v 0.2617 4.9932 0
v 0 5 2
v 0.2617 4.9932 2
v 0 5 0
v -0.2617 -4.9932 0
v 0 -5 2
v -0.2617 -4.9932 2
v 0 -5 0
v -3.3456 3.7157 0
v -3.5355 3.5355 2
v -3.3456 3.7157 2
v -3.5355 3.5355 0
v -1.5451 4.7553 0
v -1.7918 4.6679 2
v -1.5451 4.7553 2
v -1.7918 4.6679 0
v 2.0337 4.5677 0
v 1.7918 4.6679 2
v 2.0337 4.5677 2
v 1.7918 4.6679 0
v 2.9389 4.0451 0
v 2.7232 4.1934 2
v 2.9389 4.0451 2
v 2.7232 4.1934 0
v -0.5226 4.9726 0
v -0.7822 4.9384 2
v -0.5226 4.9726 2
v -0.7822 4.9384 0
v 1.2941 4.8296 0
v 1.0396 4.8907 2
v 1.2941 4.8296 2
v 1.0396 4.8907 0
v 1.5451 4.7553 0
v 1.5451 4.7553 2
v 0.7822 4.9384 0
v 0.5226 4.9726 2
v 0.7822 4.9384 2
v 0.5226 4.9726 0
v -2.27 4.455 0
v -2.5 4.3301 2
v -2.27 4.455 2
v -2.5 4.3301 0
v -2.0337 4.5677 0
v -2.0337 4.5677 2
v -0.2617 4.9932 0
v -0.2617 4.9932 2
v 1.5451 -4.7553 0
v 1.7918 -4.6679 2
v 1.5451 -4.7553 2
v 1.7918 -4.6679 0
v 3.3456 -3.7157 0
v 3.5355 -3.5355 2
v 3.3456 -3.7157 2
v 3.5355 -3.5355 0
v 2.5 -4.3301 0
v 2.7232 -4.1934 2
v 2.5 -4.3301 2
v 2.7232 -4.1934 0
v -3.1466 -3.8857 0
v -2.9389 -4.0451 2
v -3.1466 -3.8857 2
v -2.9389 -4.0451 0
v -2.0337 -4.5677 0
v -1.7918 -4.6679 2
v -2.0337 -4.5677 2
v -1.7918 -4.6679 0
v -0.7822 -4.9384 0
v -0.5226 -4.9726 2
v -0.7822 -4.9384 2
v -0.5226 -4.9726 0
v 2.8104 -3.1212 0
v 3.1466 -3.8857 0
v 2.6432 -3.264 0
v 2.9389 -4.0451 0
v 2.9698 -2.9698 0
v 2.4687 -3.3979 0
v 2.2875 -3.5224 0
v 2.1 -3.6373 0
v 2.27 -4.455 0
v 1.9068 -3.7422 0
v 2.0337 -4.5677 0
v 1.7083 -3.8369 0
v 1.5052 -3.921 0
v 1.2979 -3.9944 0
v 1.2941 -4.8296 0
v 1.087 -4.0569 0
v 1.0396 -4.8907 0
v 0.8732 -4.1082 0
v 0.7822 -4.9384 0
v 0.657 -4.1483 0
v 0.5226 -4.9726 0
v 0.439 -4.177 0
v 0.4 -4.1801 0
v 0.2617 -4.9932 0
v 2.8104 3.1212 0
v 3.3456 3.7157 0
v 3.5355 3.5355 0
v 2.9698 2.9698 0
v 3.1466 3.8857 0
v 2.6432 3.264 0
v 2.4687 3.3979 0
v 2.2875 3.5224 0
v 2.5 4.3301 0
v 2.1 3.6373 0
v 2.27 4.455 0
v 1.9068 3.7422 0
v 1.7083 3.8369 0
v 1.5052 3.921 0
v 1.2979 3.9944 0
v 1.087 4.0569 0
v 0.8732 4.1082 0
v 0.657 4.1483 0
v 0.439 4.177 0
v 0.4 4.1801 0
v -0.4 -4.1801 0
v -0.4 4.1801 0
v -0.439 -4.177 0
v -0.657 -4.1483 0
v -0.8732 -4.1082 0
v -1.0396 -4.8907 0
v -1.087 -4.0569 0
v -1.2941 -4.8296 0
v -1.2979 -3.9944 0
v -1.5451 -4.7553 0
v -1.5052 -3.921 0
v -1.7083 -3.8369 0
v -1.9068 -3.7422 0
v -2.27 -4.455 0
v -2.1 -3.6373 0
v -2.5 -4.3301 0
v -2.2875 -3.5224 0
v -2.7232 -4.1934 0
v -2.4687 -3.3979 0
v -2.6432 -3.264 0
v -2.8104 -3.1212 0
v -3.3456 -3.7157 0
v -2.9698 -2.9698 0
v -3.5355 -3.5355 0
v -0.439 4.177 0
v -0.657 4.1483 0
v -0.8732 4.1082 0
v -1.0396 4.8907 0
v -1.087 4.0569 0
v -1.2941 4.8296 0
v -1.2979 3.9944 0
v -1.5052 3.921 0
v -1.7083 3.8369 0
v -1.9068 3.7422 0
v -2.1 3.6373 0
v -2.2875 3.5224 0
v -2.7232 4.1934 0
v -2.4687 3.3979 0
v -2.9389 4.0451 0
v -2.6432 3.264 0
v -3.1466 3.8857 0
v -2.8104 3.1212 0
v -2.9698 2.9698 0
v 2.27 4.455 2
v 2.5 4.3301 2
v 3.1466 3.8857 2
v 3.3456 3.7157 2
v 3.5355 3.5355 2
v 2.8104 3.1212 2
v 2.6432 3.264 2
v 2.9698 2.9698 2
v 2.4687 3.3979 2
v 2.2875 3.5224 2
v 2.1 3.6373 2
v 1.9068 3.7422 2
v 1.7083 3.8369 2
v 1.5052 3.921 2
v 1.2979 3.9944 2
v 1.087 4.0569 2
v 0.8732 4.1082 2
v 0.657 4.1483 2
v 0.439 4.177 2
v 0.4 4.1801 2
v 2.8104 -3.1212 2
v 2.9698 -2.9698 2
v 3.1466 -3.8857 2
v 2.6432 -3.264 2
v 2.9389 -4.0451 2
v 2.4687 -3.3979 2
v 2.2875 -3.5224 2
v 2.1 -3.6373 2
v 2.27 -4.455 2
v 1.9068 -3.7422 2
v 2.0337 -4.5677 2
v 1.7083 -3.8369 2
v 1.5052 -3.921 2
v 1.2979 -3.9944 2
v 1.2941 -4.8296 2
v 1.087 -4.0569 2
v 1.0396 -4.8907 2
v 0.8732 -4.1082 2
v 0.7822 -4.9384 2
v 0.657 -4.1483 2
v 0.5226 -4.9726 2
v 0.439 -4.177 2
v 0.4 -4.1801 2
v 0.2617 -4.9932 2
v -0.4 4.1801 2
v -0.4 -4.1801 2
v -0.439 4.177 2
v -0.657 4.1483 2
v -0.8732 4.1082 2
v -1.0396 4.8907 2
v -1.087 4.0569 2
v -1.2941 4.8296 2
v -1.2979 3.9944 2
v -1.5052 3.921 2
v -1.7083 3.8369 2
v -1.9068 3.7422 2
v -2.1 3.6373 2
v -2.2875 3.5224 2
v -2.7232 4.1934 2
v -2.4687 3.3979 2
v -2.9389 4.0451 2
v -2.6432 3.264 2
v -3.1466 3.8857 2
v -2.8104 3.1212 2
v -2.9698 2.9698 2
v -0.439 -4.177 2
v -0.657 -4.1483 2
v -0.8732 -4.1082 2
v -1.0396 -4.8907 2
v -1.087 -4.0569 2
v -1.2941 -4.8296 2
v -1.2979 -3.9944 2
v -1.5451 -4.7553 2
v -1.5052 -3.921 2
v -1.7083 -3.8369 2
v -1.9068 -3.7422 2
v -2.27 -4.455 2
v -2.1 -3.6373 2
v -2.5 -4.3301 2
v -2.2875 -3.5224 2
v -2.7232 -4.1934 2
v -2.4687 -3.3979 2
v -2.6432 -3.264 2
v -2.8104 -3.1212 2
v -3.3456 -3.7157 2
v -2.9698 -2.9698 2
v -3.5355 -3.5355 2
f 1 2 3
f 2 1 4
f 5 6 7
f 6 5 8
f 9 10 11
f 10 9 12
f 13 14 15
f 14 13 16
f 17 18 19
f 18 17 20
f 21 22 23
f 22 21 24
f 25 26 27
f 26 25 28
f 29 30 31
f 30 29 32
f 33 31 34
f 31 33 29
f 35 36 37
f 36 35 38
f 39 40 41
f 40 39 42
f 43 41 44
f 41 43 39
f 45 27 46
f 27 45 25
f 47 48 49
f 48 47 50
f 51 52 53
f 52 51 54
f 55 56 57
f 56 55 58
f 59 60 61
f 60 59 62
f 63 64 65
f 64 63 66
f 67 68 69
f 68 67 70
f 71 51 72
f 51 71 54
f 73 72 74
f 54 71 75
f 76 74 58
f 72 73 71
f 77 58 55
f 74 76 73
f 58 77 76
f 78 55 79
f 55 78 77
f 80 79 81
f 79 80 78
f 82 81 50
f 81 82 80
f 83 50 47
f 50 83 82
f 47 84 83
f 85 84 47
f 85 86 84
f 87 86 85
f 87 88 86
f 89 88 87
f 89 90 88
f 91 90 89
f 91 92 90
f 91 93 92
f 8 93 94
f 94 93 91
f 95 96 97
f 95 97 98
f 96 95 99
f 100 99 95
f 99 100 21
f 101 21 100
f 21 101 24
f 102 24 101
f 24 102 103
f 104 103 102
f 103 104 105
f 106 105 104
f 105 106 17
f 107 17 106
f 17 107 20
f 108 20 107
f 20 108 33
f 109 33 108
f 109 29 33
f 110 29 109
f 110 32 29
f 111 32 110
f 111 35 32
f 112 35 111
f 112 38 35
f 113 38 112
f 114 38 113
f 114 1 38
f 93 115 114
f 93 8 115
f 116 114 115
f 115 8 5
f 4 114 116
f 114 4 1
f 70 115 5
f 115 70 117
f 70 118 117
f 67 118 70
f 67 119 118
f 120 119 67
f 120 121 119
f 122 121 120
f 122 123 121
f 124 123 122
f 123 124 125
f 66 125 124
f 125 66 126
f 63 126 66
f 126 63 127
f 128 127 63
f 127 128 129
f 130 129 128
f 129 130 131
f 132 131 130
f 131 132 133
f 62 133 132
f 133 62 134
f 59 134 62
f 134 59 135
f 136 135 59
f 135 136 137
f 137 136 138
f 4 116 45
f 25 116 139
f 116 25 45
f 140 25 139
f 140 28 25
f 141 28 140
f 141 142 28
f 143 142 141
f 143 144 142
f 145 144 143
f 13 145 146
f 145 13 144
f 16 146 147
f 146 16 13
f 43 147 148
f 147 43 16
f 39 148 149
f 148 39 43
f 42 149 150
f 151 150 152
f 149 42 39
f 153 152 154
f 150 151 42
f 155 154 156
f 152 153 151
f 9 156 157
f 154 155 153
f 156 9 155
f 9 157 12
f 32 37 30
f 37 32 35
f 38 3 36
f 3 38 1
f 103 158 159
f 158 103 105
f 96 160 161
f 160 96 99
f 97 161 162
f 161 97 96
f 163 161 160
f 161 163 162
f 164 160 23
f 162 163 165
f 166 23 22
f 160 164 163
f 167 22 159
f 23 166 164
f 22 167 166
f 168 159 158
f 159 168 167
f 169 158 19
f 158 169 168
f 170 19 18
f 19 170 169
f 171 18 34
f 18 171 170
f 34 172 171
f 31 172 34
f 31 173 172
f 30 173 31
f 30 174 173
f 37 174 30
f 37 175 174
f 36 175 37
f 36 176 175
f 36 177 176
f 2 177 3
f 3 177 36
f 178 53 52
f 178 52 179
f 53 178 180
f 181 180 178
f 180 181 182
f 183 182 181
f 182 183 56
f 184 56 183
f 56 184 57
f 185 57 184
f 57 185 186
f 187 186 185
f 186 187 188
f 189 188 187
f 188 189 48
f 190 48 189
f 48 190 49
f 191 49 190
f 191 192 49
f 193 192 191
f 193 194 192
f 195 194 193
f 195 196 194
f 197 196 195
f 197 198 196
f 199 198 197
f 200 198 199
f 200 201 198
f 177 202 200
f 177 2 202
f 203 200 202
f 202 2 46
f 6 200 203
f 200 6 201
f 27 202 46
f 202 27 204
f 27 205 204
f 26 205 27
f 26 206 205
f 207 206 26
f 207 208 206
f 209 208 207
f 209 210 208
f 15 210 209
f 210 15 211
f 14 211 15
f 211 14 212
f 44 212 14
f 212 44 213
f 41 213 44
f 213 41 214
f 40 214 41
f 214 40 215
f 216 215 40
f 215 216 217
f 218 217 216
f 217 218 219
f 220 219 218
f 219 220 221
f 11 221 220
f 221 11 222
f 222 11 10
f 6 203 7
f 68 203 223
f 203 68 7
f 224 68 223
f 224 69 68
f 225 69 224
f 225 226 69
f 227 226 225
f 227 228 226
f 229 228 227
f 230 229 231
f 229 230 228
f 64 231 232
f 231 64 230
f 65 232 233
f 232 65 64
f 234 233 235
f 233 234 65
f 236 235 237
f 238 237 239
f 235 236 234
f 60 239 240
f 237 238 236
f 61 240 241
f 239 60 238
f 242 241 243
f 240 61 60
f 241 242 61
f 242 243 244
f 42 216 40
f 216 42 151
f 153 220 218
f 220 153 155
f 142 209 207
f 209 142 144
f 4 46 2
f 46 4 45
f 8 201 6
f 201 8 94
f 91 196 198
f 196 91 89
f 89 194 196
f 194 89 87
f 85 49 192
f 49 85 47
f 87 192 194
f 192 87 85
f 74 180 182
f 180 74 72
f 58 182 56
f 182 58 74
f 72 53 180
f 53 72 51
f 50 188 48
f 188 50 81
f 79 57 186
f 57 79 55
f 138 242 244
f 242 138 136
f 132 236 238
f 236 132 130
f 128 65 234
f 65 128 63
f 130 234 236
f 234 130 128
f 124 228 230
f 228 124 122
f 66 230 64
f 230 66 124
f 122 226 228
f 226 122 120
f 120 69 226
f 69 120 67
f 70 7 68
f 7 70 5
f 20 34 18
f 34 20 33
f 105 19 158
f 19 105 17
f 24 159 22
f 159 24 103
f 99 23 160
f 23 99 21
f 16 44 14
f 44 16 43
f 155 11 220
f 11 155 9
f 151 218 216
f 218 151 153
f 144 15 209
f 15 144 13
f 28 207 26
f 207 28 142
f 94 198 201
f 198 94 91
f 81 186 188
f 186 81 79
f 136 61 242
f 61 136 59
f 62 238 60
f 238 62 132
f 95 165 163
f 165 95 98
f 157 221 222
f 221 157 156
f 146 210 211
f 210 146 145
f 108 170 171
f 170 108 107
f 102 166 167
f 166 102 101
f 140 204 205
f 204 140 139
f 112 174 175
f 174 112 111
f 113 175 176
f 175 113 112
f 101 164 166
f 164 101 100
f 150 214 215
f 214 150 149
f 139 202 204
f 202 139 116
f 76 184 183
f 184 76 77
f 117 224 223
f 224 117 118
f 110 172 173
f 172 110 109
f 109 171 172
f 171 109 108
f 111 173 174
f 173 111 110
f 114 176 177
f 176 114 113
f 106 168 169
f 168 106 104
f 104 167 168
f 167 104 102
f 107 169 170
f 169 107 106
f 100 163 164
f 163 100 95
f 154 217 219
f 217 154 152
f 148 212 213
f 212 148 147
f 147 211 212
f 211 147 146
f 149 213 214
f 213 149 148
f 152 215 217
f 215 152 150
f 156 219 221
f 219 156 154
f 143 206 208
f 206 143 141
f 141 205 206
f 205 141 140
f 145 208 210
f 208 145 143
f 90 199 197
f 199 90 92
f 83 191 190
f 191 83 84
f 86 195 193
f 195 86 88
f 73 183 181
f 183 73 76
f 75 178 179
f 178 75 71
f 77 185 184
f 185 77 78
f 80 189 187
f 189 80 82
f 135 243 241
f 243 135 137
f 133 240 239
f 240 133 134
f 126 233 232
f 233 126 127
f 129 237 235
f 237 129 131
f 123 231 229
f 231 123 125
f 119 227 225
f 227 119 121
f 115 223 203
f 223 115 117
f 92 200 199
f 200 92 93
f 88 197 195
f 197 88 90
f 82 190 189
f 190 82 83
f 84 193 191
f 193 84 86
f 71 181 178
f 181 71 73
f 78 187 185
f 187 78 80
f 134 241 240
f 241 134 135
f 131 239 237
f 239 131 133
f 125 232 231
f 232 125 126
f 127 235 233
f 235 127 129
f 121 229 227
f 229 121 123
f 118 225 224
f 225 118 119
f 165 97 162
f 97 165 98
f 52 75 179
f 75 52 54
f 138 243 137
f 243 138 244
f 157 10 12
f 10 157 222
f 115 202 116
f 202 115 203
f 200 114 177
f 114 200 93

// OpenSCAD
// Radial capacitor spacer
// RealGusi (C) 2020
// https://maniana.net
// Creative Commons - Attribution - Non-Commercial - Share Alike license.

$fn = 120;

// Modify those 2 variables to adjust a proper size
$cap_diameter = 10;
$height = 2;

$wall_thickness = 0.8;

$radius_outer = $cap_diameter / 2;
$radius_inner = $radius_outer - $wall_thickness;

difference() {
    cylinder( h = $height, r = $radius_outer);
    cylinder( h = $height, r = $radius_inner);
    
    rotate( [ 0, 0, -45]) 
    cube( [ $radius_outer, $radius_outer, $height]);
    rotate( [ 0, 0, -225]) 
    cube( [ $radius_outer, $radius_outer, $height]);
}

translate( [ - $wall_thickness / 2, - ( $radius_outer + $radius_inner) / 2, 0])
cube( [ $wall_thickness , $radius_outer + $radius_inner, $height]);
